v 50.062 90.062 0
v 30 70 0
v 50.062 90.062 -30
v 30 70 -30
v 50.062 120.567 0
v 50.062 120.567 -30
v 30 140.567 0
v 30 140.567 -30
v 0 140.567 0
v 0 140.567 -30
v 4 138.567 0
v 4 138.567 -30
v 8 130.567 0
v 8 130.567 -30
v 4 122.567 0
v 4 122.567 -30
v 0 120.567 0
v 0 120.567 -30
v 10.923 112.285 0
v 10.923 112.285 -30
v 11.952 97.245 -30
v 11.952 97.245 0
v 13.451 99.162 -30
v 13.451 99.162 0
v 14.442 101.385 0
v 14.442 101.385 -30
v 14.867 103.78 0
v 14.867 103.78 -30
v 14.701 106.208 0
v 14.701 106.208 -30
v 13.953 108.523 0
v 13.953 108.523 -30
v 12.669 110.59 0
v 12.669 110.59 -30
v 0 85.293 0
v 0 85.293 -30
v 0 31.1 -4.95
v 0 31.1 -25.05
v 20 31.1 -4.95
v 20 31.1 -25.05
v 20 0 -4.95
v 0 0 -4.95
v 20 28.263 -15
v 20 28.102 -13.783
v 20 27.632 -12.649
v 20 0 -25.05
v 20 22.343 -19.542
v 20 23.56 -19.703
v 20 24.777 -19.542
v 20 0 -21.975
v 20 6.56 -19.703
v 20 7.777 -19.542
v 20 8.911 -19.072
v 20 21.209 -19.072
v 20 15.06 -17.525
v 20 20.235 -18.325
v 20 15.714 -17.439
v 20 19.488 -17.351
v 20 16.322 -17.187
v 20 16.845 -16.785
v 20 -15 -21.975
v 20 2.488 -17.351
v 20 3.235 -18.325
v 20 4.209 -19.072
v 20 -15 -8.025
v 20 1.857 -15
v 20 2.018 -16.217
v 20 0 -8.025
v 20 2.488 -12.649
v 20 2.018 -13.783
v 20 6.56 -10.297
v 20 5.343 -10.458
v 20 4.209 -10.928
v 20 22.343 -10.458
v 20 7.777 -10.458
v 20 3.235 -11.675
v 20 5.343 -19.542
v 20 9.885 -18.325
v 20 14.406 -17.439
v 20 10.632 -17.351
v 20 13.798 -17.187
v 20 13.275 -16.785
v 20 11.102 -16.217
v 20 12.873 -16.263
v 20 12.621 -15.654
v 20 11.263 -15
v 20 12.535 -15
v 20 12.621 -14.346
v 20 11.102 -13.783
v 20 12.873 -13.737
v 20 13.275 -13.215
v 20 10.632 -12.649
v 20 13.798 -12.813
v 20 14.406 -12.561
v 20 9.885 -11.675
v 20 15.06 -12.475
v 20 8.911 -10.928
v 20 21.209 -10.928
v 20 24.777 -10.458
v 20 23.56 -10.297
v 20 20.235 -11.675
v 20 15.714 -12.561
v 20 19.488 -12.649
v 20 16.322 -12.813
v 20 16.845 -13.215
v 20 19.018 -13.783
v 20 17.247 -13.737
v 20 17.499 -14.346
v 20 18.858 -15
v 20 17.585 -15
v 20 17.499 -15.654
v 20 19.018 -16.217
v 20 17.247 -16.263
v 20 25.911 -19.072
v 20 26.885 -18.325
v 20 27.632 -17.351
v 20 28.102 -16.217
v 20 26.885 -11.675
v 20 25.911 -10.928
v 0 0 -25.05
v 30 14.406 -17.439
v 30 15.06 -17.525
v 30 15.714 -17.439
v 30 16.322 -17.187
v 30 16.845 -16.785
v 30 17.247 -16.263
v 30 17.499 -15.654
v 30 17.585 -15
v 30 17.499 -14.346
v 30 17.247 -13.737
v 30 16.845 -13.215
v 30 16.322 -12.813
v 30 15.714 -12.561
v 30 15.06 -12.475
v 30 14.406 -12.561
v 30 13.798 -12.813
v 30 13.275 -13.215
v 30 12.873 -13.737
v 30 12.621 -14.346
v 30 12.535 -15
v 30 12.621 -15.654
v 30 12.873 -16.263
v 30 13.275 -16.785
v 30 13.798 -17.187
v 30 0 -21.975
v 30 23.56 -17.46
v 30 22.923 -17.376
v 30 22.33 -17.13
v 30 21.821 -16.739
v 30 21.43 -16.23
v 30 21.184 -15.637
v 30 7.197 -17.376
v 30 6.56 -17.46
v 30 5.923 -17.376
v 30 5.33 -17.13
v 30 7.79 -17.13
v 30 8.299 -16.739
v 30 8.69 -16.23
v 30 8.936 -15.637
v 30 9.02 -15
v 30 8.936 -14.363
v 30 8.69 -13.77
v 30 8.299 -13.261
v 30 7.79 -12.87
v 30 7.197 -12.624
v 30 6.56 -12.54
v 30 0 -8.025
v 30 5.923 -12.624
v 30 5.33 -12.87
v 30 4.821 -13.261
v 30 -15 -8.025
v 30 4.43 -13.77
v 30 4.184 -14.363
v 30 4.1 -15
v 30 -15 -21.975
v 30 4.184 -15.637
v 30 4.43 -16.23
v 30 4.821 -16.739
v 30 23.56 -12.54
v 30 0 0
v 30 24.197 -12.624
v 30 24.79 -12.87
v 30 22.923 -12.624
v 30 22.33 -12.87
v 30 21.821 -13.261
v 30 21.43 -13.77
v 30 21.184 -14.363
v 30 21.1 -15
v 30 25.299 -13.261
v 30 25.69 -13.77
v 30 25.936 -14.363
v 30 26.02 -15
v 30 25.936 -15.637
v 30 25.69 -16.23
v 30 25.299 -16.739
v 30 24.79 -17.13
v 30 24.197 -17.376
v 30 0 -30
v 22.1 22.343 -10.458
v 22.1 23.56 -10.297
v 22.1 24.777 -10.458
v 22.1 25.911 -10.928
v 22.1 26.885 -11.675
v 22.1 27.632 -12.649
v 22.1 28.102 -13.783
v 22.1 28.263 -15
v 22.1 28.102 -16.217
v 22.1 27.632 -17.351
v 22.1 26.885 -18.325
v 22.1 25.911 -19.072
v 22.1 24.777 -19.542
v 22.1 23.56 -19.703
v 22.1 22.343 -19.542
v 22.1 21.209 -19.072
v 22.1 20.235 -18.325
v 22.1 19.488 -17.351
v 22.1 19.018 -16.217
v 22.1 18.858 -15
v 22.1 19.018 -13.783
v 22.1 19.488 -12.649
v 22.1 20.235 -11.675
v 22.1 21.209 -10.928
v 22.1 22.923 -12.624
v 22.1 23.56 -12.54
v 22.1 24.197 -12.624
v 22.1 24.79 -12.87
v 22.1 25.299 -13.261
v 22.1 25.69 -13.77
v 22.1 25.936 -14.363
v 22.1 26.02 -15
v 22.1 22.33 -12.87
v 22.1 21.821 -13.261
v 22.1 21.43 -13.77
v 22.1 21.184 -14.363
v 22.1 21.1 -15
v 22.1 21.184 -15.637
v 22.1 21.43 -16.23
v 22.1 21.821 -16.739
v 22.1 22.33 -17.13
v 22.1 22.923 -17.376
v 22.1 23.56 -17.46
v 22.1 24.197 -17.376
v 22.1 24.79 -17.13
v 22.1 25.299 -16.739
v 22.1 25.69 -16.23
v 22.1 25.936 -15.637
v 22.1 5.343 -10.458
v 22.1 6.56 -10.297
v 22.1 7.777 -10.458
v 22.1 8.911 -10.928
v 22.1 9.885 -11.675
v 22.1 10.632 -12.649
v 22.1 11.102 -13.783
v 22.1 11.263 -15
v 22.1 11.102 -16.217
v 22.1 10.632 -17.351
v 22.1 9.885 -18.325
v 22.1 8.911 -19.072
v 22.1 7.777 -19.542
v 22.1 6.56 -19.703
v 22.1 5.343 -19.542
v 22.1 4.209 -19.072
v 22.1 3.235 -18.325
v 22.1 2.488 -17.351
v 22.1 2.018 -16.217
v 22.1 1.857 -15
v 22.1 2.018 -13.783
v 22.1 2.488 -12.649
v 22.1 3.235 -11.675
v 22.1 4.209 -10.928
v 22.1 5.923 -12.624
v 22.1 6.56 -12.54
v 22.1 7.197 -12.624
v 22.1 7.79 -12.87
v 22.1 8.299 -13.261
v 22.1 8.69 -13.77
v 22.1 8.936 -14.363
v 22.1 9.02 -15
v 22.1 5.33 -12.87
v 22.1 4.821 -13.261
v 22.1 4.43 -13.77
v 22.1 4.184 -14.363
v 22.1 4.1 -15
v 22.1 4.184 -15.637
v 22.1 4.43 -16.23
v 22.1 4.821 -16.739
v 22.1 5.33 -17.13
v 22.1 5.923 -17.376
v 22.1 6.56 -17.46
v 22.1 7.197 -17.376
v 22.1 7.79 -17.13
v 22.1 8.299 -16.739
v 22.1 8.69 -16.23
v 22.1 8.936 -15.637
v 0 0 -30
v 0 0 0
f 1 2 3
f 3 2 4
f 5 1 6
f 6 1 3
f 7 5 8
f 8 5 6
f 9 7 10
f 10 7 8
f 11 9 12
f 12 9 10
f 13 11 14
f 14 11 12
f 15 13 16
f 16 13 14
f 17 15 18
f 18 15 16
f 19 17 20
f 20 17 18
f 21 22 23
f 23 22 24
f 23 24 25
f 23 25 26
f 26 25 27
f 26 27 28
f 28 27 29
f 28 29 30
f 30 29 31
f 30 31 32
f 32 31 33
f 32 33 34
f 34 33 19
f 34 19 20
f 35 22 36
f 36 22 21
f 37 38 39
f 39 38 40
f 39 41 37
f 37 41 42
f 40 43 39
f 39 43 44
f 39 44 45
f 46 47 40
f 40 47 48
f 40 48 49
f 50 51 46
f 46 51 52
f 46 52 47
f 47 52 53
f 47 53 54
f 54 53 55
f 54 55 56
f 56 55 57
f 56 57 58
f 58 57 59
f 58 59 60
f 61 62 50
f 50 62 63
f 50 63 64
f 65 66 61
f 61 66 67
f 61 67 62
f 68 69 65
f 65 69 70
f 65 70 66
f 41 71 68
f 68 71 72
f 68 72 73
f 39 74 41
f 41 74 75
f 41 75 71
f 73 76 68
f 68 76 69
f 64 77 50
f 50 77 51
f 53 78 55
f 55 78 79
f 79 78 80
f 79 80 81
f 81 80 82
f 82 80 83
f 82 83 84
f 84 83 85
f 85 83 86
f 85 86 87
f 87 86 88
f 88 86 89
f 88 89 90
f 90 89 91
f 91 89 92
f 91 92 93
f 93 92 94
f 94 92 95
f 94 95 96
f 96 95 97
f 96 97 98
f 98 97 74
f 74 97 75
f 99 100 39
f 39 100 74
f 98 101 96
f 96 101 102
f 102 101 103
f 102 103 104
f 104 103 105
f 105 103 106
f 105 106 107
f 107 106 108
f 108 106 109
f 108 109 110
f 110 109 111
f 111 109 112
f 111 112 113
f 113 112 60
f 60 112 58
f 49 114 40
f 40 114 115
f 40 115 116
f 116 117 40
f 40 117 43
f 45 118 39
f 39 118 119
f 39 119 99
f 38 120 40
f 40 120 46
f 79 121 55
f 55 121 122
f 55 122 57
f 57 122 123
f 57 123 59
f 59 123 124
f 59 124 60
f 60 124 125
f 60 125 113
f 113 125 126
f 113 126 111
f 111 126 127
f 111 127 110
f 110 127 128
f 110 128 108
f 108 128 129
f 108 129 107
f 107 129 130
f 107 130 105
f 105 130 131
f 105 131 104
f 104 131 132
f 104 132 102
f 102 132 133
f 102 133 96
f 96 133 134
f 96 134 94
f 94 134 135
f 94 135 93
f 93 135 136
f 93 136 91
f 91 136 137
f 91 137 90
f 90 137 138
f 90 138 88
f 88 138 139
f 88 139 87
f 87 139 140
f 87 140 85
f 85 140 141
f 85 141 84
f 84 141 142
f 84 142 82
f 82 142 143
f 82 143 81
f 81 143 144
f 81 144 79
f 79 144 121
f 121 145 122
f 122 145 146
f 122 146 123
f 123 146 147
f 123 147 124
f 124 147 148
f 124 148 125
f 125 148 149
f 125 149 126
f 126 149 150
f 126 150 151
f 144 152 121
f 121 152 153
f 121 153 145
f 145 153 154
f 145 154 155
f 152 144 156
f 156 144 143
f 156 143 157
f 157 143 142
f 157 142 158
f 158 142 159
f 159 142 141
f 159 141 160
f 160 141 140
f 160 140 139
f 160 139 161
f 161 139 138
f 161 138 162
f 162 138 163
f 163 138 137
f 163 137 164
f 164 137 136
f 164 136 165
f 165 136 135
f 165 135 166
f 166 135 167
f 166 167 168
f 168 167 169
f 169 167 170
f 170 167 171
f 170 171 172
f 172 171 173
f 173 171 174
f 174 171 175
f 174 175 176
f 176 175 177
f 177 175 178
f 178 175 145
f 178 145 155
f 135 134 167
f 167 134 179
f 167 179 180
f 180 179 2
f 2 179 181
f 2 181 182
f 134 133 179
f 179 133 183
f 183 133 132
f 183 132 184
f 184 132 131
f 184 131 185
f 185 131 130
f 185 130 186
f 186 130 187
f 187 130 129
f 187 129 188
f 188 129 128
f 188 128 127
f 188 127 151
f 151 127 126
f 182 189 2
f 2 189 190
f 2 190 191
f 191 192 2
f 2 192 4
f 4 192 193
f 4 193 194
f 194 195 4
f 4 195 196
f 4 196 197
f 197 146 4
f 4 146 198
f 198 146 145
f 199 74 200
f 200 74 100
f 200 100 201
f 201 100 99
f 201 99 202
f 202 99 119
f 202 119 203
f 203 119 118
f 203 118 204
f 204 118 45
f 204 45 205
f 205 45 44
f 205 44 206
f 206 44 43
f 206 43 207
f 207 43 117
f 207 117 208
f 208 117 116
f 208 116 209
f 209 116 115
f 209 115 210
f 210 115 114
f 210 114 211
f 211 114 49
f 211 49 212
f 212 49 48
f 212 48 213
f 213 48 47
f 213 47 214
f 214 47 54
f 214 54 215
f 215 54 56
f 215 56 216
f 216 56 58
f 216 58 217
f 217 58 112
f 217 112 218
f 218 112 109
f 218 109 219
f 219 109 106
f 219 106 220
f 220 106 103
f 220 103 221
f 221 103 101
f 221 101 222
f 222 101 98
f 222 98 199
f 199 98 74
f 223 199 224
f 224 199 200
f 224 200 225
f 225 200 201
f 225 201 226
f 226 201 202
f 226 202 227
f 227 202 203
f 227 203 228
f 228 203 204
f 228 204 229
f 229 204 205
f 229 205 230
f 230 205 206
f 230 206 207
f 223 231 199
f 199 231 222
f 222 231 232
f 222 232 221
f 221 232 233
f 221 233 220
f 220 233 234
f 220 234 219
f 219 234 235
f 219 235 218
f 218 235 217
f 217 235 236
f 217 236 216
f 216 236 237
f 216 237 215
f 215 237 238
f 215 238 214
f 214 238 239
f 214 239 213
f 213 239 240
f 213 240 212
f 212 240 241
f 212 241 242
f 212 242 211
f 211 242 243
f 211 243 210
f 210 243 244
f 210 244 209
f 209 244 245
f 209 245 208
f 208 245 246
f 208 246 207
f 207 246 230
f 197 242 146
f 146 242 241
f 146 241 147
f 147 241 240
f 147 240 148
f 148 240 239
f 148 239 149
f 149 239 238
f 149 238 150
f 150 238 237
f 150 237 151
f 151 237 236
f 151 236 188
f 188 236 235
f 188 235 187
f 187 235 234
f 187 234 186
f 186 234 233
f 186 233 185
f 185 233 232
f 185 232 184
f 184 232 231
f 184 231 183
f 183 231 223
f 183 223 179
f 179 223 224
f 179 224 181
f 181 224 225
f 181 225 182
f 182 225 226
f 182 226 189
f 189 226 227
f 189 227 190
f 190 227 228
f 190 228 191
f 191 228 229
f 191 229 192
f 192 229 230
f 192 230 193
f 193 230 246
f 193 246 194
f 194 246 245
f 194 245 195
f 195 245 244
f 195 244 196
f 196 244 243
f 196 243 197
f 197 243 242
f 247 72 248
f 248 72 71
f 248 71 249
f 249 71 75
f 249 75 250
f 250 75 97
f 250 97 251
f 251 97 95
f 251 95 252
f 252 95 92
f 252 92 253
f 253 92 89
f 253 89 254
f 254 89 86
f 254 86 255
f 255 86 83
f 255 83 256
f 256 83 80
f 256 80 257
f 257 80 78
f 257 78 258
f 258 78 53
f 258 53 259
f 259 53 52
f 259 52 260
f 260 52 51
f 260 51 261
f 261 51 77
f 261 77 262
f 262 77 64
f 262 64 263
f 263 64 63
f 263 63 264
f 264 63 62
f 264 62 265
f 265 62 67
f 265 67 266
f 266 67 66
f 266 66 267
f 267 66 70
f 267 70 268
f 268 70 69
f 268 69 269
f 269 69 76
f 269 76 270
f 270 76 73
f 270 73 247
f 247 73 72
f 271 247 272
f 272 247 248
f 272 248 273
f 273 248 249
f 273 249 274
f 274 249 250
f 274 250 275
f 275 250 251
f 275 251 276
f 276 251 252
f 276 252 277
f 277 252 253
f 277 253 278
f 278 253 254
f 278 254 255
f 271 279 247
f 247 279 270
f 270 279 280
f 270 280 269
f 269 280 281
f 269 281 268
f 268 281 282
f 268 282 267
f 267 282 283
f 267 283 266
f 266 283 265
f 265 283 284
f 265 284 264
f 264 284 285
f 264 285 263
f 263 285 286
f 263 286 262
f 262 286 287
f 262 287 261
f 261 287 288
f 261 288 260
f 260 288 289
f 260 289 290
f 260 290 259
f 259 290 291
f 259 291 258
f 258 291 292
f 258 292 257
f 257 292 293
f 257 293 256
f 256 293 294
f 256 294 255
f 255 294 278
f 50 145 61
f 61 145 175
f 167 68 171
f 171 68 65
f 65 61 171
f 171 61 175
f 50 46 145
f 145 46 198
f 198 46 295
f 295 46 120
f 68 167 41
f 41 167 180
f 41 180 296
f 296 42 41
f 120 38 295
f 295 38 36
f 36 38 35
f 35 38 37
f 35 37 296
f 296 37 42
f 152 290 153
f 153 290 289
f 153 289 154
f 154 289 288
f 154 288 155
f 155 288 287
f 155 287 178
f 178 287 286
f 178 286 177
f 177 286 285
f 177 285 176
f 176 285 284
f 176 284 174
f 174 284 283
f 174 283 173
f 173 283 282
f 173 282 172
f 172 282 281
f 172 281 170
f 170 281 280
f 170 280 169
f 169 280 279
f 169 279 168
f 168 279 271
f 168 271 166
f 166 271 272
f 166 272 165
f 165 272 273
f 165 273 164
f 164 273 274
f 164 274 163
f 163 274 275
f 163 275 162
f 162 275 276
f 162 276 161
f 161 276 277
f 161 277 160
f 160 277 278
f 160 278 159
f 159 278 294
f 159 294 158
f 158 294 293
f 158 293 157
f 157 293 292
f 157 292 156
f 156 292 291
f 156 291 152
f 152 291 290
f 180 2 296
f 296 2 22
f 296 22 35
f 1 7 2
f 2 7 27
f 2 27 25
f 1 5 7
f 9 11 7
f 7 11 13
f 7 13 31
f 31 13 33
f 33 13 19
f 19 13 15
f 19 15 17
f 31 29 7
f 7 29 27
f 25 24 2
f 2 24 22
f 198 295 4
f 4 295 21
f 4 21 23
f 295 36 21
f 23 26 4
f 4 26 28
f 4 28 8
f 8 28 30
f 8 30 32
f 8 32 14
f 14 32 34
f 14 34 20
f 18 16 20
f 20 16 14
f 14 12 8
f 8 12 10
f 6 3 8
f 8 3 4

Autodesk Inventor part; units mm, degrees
ref_plane "YZ Plane" through (0, 0, 0) normal (1, 0, 0) x (0, 1, 0)
ref_plane "XZ Plane" through (0, 0, 0) normal (0, 1, 0) x (-1, 0, 0)
ref_plane "XY Plane" through (0, 0, 0) normal (0, 0, 1) x (1, 0, 0)
sketch "Sketch1" plane through (0, 0, 0) normal (0, 0, 1) x (1, 0, 0)
  line L0 (0, 0) -> (25, 0)
  line L1 (25, 0) -> (25, 40)
  line L2 (25, 40) -> (0, 40)
  line L3 (0, 40) -> (0, 0)
  dimension "d1" = 25
  dimension "d2" = 40
  dimension "d3" = 25
extrude "Extrusion1" add sketch "Sketch1" against normal blind 30
sketch "Sketch2" plane through (25, 0, 0) normal (1, 0, 0) x (0, 0, -1)
  line L0 (0, 0) -> (30, 0) projected
  circle A0 centre (15, 6.56) radius 2.46
extrude "Extrusion2" cut sketch "Sketch2" against normal blind 30
sketch "Sketch3" plane through (0, 0, 0) normal (-1, 0, 0) x (0, 0, 1)
  line L0 (0, 0) -> (-30, 0) projected
  line L1 (-25.05, 0) -> (-4.95, 0)
  line L2 (-4.95, 0) -> (-4.95, 33.12)
  line L3 (-4.95, 33.12) -> (-25.05, 33.12)
  line L4 (-25.05, 33.12) -> (-25.05, 0)
  dimension "d11" = 20.1
extrude "Extrusion3" cut sketch "Sketch3" against normal blind 20
sketch "Sketch4" plane through (0, 0, 0) normal (0, -1, 0) x (1, 0, 0)
  line L0 (20, -4.95) -> (20, -25.05) projected
  line L1 (20, -15) -> (25, -15)
  line L2 (25, 0) -> (25, -30) projected
  line L3 (20, -8.025) -> (25, -8.025)
  line L4 (25, -8.025) -> (25, -21.975)
  line L5 (25, -21.975) -> (20, -21.975)
  line L6 (20, -21.975) -> (20, -8.025)
  line L7 (20, -8.025) -> (25, -21.975) construction
  line L8 (25, -8.025) -> (20, -21.975) construction
  line L9 (25, -12.54) -> (25, -17.46) projected
  point P0 (0, 0)
  point P1 (22.5, -15)
  dimension "d14" = 13.95
extrude "Extrusion4" add sketch "Sketch4" along normal blind 15
sketch "Sketch5" plane through (20, 0, 0) normal (-1, 0, 0) x (0, 0, 1)
  circle A0 centre (-15, 6.56) radius 2.46 projected
  circle A1 centre (-15, 6.56) radius 4.7025
  circle A2 centre (-15, 6.56) radius 2.46 projected
  circle A3 centre (-15, 6.56) radius 2.46
  point P0 (0, 0)
  dimension "d17" = 9.405
extrude "Extrusion5" cut sketch "Sketch5" against normal blind 2.1
sketch "Sketch6" plane through (25, 0, 0) normal (1, 0, 0) x (0, 0, -1)
  circle A0 centre (15, 6.56) radius 4.7025 projected
  line L0 (15, 6.56) -> (15, 23.56)
  circle A1 centre (15, 23.56) radius 2.46
  point P0 (0, 0)
  dimension "d20" = 17
  dimension "d21" = 4.92
extrude "Extrusion6" cut sketch "Sketch6" against normal blind 10 contours A1
sketch "Sketch7" plane through (20, 0, 0) normal (-1, 0, 0) x (0, 0, 1)
  circle A0 centre (-15, 23.56) radius 2.46 projected
  circle A1 centre (-15, 23.56) radius 4.7025
  point P0 (0, 0)
  dimension "d24" = 9.405
extrude "Extrusion7" cut sketch "Sketch7" against normal blind 2.1
sketch "Sketch9" plane through (25, 0, 0) normal (1, 0, 0) x (0, 0, -1)
  circle A0 centre (15, 6.56) radius 2.46 projected
  circle A1 centre (15, 6.56) radius 2.46
  circle A2 centre (15, 23.56) radius 2.46 projected
  circle A3 centre (15, 23.56) radius 2.46
  line L0 (30, 40) -> (30, 0) projected
  line L1 (30, 0) -> (30, 40)
  line L2 (30, 40) -> (0, 40)
  line L3 (0, 40) -> (0, 0)
  line L4 (0, 0) -> (8.025, 0) projected
  line L5 (21.975, 0) -> (21.975, -15)
  line L6 (21.975, -15) -> (8.025, -15)
  line L7 (8.025, -15) -> (8.025, 0)
  line L8 (0, 0) -> (8.025, 0)
  line L9 (21.975, 0) -> (30, 0)
extrude "Extrusion8" add sketch "Sketch9" along normal blind 5
sketch "Sketch10" plane through (0, 40, 0) normal (0, 1, 0) x (1, 0, 0)
  line L0 (0, 30) -> (30, 30) projected
  line L1 (30, 0) -> (0, 0) projected
  line L2 (0, 30) -> (30, 30)
  line L3 (30, 30) -> (30, 0)
  line L4 (30, 0) -> (0, 0)
  line L5 (0, 0) -> (0, 30)
extrude "Extrusion9" add sketch "Sketch10" along normal blind 30
sketch "Sketch12" plane through (30, 0, 0) normal (1, 0, 0) x (0, 0, -1)
  circle A0 centre (15, 6.56) radius 2.46 projected
  line L0 (15, 6.56) -> (15, 15.06)
  circle A1 centre (15, 15.06) radius 2.525
  point P0 (0, 0)
  dimension "d31" = 8.5
  dimension "d33" = 5.05
extrude "Extrusion10" cut sketch "Sketch12" against normal blind 30 contours A1
sketch "Sketch15" plane through (0, 0, -25.05) normal (-1, 0, 0) x (0, 0, 1)
  line L0 (0, 33.12) -> (20.1, 33.12) projected
  line L1 (20.1, 33.12) -> (20.1, 0) projected
  line L2 (0, 33.12) -> (20.1, 33.12)
  line L3 (20.1, 33.12) -> (20.1, 31.1)
  line L4 (20.1, 31.1) -> (0, 31.1)
  line L5 (0, 31.1) -> (0, 33.12)
  point P0 (25.05, 0)
  dimension "d57" = 2.02
extrude "Extrusion13" add sketch "Sketch15" against normal blind 20
sketch "Sketch17" plane through (0, 0, 0) normal (0, 0, 1) x (1, 0, 0)
  line L0 (0, 70) -> (30, 70) projected
  line L1 (30, 70) -> (50.0622, 90.0622)
  line L2 (30, 70) -> (80, 70) construction
  line L3 (11.9522, 97.2454) -> (0, 85.2932)
  line L4 (0, 70) -> (0, 85.2932)
  line L5 (0, 70) -> (0, 0) projected
  line L6 (0, 70) -> (30, 70)
  line L7 (10.923, 112.2849) -> (0, 120.567)
  line L8 (50.0622, 105.3553) -> (50.0622, 120.567)
  line L9 (50.0622, 105.3553) -> (50.0622, 90.0622)
  arc A0 (11.9522, 97.2454) -> (10.923, 112.2849) centre (4.8811, 104.3165) ccw
  line L10 (4, 138.567) -> (0, 140.567)
  line L11 (4, 122.567) -> (0, 120.567)
  line L12 (4, 122.567) -> (8, 130.567)
  line L13 (4, 138.567) -> (8, 130.567)
  line L14 (0, 140.567) -> (30, 140.567)
  line L15 (30, 140.567) -> (50.0622, 120.567)
  dimension "d61" = 45
  dimension "d62" = 32.0271
  dimension "d72" = 10
extrude "Extrusion14" add sketch "Sketch17" against normal blind 30
properties part number "rec_c_16mm_x_30mm"
